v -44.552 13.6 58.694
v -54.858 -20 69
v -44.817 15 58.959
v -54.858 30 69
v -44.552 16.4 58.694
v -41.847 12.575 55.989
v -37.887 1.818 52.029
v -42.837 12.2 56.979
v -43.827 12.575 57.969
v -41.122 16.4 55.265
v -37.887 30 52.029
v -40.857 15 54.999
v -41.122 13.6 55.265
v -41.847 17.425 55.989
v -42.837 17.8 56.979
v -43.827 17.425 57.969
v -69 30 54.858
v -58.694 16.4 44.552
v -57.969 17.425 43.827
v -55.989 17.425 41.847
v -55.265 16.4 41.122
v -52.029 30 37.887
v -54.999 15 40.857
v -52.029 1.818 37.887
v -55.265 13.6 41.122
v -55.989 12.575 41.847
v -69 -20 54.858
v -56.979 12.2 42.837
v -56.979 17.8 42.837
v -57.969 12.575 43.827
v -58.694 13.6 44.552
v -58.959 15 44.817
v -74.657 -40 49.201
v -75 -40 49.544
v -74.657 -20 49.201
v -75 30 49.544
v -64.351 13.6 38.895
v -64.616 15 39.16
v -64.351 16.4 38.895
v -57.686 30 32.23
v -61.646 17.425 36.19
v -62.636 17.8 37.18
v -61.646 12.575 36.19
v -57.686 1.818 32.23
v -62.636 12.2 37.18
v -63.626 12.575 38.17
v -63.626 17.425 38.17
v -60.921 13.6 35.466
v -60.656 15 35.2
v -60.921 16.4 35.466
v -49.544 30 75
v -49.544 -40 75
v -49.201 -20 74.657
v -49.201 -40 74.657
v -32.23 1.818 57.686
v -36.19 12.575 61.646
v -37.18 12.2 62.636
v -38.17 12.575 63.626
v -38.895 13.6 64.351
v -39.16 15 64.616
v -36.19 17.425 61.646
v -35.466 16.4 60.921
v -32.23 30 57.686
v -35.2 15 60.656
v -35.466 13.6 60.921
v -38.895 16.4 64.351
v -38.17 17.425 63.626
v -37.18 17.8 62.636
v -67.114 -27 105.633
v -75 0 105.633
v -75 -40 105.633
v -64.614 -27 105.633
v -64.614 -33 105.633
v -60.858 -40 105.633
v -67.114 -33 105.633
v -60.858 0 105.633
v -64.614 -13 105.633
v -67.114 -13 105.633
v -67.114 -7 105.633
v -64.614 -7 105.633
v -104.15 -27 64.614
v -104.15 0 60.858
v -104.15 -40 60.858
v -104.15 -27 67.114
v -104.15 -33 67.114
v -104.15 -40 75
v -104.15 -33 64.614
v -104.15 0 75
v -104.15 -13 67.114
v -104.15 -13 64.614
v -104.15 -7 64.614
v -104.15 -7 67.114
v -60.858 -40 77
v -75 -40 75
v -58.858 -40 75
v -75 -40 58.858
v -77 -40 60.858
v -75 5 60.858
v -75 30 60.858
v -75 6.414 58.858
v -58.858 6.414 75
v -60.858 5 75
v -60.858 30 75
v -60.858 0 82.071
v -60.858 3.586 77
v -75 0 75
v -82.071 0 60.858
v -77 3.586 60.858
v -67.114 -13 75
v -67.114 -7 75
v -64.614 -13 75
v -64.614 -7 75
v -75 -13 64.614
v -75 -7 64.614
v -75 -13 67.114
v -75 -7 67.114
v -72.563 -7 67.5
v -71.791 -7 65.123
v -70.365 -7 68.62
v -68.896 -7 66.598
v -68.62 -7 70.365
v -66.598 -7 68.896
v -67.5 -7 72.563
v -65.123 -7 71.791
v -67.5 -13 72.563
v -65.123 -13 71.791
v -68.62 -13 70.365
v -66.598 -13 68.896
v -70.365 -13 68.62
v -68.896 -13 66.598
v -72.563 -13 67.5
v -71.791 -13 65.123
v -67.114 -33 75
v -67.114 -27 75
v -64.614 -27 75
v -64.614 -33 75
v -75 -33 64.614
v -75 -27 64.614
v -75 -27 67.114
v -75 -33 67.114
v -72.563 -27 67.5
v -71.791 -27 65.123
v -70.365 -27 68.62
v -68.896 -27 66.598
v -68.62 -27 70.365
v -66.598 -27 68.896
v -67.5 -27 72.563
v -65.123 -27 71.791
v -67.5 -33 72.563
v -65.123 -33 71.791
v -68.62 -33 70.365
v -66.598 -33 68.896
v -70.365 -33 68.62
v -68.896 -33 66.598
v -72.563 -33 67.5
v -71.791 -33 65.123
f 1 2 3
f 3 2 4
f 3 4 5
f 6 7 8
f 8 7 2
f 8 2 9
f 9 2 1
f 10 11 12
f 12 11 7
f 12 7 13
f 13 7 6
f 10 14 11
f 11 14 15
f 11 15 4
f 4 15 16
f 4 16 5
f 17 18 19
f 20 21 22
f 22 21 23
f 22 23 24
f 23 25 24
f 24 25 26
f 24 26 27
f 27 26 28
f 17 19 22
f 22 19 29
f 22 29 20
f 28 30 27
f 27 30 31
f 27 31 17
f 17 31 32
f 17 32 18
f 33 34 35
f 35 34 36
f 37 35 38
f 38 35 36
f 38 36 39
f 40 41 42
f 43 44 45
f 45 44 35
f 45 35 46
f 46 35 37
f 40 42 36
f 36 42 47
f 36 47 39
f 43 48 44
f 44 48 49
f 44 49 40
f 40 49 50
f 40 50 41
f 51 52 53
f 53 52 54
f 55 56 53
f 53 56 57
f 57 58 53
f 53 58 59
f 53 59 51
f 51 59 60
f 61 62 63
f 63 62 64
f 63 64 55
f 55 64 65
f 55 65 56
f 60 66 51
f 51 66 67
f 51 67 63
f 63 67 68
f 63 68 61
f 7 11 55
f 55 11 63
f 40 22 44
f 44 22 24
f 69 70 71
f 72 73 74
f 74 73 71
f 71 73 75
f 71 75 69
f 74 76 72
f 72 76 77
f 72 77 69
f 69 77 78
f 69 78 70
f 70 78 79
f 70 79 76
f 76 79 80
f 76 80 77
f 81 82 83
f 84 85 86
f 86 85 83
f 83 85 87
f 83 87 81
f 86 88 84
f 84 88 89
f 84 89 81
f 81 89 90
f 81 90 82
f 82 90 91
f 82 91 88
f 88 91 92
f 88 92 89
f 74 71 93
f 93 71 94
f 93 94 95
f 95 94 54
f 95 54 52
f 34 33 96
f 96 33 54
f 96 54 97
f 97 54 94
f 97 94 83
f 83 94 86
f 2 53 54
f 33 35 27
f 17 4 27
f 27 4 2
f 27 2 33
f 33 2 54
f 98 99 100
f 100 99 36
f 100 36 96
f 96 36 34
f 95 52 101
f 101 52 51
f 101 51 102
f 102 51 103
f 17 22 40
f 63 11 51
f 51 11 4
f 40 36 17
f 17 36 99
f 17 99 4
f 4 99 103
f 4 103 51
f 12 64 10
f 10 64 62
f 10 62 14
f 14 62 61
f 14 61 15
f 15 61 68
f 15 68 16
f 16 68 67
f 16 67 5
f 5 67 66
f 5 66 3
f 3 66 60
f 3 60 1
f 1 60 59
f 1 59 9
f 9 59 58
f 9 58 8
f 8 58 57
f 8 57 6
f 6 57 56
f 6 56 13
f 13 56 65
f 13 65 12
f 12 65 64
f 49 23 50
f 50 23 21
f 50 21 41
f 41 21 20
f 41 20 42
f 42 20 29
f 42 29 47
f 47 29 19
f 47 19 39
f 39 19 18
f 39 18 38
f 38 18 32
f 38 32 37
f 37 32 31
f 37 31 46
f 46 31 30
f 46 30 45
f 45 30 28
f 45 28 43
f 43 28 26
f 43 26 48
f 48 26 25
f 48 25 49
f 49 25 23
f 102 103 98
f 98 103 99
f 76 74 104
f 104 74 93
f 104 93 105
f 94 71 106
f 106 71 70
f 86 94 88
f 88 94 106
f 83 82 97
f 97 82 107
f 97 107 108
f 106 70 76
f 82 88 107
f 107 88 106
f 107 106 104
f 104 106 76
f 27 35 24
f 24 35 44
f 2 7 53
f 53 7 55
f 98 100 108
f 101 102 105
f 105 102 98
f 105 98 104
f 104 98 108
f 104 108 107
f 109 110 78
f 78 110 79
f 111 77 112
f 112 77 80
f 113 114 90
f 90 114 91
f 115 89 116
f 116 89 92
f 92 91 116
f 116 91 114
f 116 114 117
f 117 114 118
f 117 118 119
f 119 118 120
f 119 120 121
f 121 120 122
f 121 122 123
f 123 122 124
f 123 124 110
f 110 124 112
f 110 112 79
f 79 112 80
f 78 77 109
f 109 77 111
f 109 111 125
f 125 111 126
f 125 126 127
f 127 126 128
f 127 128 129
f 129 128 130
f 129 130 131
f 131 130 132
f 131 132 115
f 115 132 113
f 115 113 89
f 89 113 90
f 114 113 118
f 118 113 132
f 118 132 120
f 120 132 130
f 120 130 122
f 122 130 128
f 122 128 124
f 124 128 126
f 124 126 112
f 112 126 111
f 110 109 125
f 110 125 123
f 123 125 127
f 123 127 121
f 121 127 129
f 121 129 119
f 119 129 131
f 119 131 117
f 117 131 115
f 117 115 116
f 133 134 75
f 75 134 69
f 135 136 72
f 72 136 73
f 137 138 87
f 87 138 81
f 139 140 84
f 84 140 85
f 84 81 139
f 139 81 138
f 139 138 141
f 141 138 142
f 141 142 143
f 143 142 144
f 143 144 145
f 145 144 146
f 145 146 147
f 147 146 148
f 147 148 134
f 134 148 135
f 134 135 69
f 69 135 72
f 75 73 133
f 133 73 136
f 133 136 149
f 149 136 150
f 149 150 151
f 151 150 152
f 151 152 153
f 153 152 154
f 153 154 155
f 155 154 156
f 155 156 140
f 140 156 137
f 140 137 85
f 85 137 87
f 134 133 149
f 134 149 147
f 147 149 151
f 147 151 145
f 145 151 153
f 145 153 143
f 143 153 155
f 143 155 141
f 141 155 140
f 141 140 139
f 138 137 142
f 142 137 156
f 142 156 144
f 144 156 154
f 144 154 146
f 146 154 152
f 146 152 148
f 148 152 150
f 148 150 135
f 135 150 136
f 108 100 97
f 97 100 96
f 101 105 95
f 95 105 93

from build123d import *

# Parameters (mm, degrees)
BOSS_EXTRUDE1_DEPTH     = 30
SKETCH2_R               = 2.8
CUT_EXTRUDE1_DEPTH      = 65
CUT_EXTRUDE2_DEPTH      = 65
BOSS_EXTRUDE2_DEPTH     = 40
SKETCH9_W               = 55.910316486
SKETCH9_H               = 20
CUT_EXTRUDE4_DEPTH      = 40
CUT_EXTRUDE5_DEPTH      = 40
CHAMFER1_SIZE           = 5
CUT_EXTRUDE6_DEPTH      = 3
CUT_EXTRUDE6_DEPTH_BACK = 3
CUT_EXTRUDE7_DEPTH      = 3
CUT_EXTRUDE7_DEPTH_BACK = 3
SKETCH14_W              = 8
SKETCH14_H              = 30
BOSS_EXTRUDE3_DEPTH     = 2
CUT_EXTRUDE8_DEPTH      = 22
CHAMFER2_SIZE           = 2


with BuildPart() as part:
    # Sketch1 → Boss-Extrude1 (new body)
    with BuildSketch(Plane(origin=(0, 0, 0), x_dir=(1, 0, 0), z_dir=(0, 1, 0))):
        Polygon((-69, -54.857864376), (-54.857864376, -69), (-39.30151519, -53.443650814), (-33.644660941, -59.100505063), (-49.544155877, -75), (-75, -75), (-75, -49.544155877), (-59.100505063, -33.644660941), (-53.443650814, -39.30151519), align=None)
    extrude(amount=BOSS_EXTRUDE1_DEPTH)

    # Sketch2 → Cut-Extrude1 (cut)
    with BuildSketch(Plane(origin=(12.727922061, 0, 12.727922061), x_dir=(0.707106781, 0, -0.707106781), z_dir=(0.707106781, 0, 0.707106781))):
        with Locations((-70.580735804, 15)):
            Circle(SKETCH2_R)
    extrude(amount=-CUT_EXTRUDE1_DEPTH, mode=Mode.SUBTRACT)

    # Sketch4 → Cut-Extrude2 (cut)
    with BuildSketch(Plane.XZ):
        Polygon((-60.857864376, 75), (-75, 60.857864376), (-82.434342637, 68.292207014), (-68.292207014, 82.434342637), align=None)
    extrude(amount=-CUT_EXTRUDE2_DEPTH, mode=Mode.SUBTRACT)

    # Sketch6 → Boss-Extrude2 (add)
    with BuildSketch(Plane.XZ):
        Polygon((-60.857864376, 75), (-60.857864376, 105.632615689), (-75, 105.632615689), (-75, 75), (-104.149605391, 75), (-104.149605391, 60.857864376), (-75, 60.857864376), (-75, 49.544155877), (-59.100505063, 33.644660941), (-53.443650814, 39.30151519), (-69, 54.857864376), (-54.857864376, 69), (-39.30151519, 53.443650814), (-33.644660941, 59.100505063), (-49.544155877, 75), align=None)
    extrude(amount=BOSS_EXTRUDE2_DEPTH)

    # Sketch9 → Cut-Extrude4 (cut)
    with BuildSketch(Plane(origin=(-61.928932188, 0, 61.928932188), x_dir=(-0.707106781, 0, -0.707106781), z_dir=(0.707106781, 0, -0.707106781))):
        with Locations((0, -30)):
            Rectangle(SKETCH9_W, SKETCH9_H)
    extrude(amount=CUT_EXTRUDE4_DEPTH, mode=Mode.SUBTRACT)

    # Sketch10 → Cut-Extrude5 (cut)
    with BuildSketch(Plane(origin=(12.727922061, 0, 12.727922061), x_dir=(0.707106781, 0, -0.707106781), z_dir=(0.707106781, 0, 0.707106781))):
        Polygon((-87.580735804, -20), (-65.580735804, 0), (-65.580735804, -20), align=None)
    extrude(amount=-CUT_EXTRUDE5_DEPTH, mode=Mode.SUBTRACT)

    # Chamfer1
    chamfer1_edges = [part.edges().sort_by_distance(p)[0] for p in [
        (-67.928932188, 0, 67.928932188),
    ]]
    chamfer(chamfer1_edges, length=CHAMFER1_SIZE)

    # Sketch12 → Cut-Extrude6 (cut, two sides)
    with BuildSketch(Plane(origin=(0, -10, 0), x_dir=(1, 0, 0), z_dir=(0, 1, 0))) as cut_extrude6_sk:
        with BuildLine():
            Line((-75, -67.114451053), (-110.706734673, -67.114451053))
            Line((-110.706734673, -67.114451053), (-110.706734673, -64.614451053))
            Line((-110.706734673, -64.614451053), (-75, -64.614451053))
            ThreePointArc((-75, -64.614451053), (-67.656307913, -67.656307913), (-64.614451053, -75))
            Line((-64.614451053, -75), (-64.614451053, -107.388255064))
            Line((-64.614451053, -107.388255064), (-67.114451053, -107.388255064))
            Line((-67.114451053, -107.388255064), (-67.114451053, -75))
            ThreePointArc((-67.114451053, -75), (-69.424074866, -69.424074866), (-75, -67.114451053))
        make_face()
    extrude(amount=CUT_EXTRUDE6_DEPTH, mode=Mode.SUBTRACT)
    extrude(cut_extrude6_sk.sketch, amount=-CUT_EXTRUDE6_DEPTH_BACK, mode=Mode.SUBTRACT)

    # Sketch13 → Cut-Extrude7 (cut, two sides)
    with BuildSketch(Plane(origin=(0, -30, 0), x_dir=(1, 0, 0), z_dir=(0, 1, 0))) as cut_extrude7_sk:
        with BuildLine():
            Line((-110.706734673, -67.114451053), (-75, -67.114451053))
            ThreePointArc((-75, -67.114451053), (-69.424074866, -69.424074866), (-67.114451053, -75))
            Line((-67.114451053, -75), (-67.114451053, -107.388255064))
            Line((-67.114451053, -107.388255064), (-64.614451053, -107.388255064))
            Line((-64.614451053, -107.388255064), (-64.614451053, -75))
            ThreePointArc((-64.614451053, -75), (-67.656307913, -67.656307913), (-75, -64.614451053))
            Line((-75, -64.614451053), (-110.706734673, -64.614451053))
            Line((-110.706734673, -64.614451053), (-110.706734673, -67.114451053))
        make_face()
    extrude(amount=CUT_EXTRUDE7_DEPTH, mode=Mode.SUBTRACT)
    extrude(cut_extrude7_sk.sketch, amount=-CUT_EXTRUDE7_DEPTH_BACK, mode=Mode.SUBTRACT)

    # Sketch14 → Boss-Extrude3 (add)
    with BuildSketch(Plane(origin=(-46.372583002, 0, 46.372583002), x_dir=(-0.707106781, 0, -0.707106781), z_dir=(0.707106781, 0, -0.707106781))):
        with Locations((-14, 15)):
            Rectangle(SKETCH14_W, SKETCH14_H)
        with Locations((14, 15)):
            Rectangle(SKETCH14_W, SKETCH14_H)
    extrude(amount=BOSS_EXTRUDE3_DEPTH)

    # Sketch15 → Cut-Extrude8 (cut)
    with BuildSketch(Plane(origin=(-20.983069232, 32.641995196, 20.983069232), x_dir=(0.879633819, 0.400113768, 0.257202871), z_dir=(0.475651494, -0.739940073, -0.475651494))):
        Polygon((-16.653515894, 59.58496844), (-53.507538304, 34.603245183), (-43.108288721, 19.261862476), (-6.254266311, 44.243585732), align=None)
    extrude(amount=CUT_EXTRUDE8_DEPTH, mode=Mode.SUBTRACT)

    # Chamfer2
    chamfer2_edges = [part.edges().sort_by_distance(p)[0] for p in [
        (-60.857864376, -17.5, 75),
        (-75, -17.5, 60.857864376),
    ]]
    chamfer(chamfer2_edges, length=CHAMFER2_SIZE)


solid = part.part
